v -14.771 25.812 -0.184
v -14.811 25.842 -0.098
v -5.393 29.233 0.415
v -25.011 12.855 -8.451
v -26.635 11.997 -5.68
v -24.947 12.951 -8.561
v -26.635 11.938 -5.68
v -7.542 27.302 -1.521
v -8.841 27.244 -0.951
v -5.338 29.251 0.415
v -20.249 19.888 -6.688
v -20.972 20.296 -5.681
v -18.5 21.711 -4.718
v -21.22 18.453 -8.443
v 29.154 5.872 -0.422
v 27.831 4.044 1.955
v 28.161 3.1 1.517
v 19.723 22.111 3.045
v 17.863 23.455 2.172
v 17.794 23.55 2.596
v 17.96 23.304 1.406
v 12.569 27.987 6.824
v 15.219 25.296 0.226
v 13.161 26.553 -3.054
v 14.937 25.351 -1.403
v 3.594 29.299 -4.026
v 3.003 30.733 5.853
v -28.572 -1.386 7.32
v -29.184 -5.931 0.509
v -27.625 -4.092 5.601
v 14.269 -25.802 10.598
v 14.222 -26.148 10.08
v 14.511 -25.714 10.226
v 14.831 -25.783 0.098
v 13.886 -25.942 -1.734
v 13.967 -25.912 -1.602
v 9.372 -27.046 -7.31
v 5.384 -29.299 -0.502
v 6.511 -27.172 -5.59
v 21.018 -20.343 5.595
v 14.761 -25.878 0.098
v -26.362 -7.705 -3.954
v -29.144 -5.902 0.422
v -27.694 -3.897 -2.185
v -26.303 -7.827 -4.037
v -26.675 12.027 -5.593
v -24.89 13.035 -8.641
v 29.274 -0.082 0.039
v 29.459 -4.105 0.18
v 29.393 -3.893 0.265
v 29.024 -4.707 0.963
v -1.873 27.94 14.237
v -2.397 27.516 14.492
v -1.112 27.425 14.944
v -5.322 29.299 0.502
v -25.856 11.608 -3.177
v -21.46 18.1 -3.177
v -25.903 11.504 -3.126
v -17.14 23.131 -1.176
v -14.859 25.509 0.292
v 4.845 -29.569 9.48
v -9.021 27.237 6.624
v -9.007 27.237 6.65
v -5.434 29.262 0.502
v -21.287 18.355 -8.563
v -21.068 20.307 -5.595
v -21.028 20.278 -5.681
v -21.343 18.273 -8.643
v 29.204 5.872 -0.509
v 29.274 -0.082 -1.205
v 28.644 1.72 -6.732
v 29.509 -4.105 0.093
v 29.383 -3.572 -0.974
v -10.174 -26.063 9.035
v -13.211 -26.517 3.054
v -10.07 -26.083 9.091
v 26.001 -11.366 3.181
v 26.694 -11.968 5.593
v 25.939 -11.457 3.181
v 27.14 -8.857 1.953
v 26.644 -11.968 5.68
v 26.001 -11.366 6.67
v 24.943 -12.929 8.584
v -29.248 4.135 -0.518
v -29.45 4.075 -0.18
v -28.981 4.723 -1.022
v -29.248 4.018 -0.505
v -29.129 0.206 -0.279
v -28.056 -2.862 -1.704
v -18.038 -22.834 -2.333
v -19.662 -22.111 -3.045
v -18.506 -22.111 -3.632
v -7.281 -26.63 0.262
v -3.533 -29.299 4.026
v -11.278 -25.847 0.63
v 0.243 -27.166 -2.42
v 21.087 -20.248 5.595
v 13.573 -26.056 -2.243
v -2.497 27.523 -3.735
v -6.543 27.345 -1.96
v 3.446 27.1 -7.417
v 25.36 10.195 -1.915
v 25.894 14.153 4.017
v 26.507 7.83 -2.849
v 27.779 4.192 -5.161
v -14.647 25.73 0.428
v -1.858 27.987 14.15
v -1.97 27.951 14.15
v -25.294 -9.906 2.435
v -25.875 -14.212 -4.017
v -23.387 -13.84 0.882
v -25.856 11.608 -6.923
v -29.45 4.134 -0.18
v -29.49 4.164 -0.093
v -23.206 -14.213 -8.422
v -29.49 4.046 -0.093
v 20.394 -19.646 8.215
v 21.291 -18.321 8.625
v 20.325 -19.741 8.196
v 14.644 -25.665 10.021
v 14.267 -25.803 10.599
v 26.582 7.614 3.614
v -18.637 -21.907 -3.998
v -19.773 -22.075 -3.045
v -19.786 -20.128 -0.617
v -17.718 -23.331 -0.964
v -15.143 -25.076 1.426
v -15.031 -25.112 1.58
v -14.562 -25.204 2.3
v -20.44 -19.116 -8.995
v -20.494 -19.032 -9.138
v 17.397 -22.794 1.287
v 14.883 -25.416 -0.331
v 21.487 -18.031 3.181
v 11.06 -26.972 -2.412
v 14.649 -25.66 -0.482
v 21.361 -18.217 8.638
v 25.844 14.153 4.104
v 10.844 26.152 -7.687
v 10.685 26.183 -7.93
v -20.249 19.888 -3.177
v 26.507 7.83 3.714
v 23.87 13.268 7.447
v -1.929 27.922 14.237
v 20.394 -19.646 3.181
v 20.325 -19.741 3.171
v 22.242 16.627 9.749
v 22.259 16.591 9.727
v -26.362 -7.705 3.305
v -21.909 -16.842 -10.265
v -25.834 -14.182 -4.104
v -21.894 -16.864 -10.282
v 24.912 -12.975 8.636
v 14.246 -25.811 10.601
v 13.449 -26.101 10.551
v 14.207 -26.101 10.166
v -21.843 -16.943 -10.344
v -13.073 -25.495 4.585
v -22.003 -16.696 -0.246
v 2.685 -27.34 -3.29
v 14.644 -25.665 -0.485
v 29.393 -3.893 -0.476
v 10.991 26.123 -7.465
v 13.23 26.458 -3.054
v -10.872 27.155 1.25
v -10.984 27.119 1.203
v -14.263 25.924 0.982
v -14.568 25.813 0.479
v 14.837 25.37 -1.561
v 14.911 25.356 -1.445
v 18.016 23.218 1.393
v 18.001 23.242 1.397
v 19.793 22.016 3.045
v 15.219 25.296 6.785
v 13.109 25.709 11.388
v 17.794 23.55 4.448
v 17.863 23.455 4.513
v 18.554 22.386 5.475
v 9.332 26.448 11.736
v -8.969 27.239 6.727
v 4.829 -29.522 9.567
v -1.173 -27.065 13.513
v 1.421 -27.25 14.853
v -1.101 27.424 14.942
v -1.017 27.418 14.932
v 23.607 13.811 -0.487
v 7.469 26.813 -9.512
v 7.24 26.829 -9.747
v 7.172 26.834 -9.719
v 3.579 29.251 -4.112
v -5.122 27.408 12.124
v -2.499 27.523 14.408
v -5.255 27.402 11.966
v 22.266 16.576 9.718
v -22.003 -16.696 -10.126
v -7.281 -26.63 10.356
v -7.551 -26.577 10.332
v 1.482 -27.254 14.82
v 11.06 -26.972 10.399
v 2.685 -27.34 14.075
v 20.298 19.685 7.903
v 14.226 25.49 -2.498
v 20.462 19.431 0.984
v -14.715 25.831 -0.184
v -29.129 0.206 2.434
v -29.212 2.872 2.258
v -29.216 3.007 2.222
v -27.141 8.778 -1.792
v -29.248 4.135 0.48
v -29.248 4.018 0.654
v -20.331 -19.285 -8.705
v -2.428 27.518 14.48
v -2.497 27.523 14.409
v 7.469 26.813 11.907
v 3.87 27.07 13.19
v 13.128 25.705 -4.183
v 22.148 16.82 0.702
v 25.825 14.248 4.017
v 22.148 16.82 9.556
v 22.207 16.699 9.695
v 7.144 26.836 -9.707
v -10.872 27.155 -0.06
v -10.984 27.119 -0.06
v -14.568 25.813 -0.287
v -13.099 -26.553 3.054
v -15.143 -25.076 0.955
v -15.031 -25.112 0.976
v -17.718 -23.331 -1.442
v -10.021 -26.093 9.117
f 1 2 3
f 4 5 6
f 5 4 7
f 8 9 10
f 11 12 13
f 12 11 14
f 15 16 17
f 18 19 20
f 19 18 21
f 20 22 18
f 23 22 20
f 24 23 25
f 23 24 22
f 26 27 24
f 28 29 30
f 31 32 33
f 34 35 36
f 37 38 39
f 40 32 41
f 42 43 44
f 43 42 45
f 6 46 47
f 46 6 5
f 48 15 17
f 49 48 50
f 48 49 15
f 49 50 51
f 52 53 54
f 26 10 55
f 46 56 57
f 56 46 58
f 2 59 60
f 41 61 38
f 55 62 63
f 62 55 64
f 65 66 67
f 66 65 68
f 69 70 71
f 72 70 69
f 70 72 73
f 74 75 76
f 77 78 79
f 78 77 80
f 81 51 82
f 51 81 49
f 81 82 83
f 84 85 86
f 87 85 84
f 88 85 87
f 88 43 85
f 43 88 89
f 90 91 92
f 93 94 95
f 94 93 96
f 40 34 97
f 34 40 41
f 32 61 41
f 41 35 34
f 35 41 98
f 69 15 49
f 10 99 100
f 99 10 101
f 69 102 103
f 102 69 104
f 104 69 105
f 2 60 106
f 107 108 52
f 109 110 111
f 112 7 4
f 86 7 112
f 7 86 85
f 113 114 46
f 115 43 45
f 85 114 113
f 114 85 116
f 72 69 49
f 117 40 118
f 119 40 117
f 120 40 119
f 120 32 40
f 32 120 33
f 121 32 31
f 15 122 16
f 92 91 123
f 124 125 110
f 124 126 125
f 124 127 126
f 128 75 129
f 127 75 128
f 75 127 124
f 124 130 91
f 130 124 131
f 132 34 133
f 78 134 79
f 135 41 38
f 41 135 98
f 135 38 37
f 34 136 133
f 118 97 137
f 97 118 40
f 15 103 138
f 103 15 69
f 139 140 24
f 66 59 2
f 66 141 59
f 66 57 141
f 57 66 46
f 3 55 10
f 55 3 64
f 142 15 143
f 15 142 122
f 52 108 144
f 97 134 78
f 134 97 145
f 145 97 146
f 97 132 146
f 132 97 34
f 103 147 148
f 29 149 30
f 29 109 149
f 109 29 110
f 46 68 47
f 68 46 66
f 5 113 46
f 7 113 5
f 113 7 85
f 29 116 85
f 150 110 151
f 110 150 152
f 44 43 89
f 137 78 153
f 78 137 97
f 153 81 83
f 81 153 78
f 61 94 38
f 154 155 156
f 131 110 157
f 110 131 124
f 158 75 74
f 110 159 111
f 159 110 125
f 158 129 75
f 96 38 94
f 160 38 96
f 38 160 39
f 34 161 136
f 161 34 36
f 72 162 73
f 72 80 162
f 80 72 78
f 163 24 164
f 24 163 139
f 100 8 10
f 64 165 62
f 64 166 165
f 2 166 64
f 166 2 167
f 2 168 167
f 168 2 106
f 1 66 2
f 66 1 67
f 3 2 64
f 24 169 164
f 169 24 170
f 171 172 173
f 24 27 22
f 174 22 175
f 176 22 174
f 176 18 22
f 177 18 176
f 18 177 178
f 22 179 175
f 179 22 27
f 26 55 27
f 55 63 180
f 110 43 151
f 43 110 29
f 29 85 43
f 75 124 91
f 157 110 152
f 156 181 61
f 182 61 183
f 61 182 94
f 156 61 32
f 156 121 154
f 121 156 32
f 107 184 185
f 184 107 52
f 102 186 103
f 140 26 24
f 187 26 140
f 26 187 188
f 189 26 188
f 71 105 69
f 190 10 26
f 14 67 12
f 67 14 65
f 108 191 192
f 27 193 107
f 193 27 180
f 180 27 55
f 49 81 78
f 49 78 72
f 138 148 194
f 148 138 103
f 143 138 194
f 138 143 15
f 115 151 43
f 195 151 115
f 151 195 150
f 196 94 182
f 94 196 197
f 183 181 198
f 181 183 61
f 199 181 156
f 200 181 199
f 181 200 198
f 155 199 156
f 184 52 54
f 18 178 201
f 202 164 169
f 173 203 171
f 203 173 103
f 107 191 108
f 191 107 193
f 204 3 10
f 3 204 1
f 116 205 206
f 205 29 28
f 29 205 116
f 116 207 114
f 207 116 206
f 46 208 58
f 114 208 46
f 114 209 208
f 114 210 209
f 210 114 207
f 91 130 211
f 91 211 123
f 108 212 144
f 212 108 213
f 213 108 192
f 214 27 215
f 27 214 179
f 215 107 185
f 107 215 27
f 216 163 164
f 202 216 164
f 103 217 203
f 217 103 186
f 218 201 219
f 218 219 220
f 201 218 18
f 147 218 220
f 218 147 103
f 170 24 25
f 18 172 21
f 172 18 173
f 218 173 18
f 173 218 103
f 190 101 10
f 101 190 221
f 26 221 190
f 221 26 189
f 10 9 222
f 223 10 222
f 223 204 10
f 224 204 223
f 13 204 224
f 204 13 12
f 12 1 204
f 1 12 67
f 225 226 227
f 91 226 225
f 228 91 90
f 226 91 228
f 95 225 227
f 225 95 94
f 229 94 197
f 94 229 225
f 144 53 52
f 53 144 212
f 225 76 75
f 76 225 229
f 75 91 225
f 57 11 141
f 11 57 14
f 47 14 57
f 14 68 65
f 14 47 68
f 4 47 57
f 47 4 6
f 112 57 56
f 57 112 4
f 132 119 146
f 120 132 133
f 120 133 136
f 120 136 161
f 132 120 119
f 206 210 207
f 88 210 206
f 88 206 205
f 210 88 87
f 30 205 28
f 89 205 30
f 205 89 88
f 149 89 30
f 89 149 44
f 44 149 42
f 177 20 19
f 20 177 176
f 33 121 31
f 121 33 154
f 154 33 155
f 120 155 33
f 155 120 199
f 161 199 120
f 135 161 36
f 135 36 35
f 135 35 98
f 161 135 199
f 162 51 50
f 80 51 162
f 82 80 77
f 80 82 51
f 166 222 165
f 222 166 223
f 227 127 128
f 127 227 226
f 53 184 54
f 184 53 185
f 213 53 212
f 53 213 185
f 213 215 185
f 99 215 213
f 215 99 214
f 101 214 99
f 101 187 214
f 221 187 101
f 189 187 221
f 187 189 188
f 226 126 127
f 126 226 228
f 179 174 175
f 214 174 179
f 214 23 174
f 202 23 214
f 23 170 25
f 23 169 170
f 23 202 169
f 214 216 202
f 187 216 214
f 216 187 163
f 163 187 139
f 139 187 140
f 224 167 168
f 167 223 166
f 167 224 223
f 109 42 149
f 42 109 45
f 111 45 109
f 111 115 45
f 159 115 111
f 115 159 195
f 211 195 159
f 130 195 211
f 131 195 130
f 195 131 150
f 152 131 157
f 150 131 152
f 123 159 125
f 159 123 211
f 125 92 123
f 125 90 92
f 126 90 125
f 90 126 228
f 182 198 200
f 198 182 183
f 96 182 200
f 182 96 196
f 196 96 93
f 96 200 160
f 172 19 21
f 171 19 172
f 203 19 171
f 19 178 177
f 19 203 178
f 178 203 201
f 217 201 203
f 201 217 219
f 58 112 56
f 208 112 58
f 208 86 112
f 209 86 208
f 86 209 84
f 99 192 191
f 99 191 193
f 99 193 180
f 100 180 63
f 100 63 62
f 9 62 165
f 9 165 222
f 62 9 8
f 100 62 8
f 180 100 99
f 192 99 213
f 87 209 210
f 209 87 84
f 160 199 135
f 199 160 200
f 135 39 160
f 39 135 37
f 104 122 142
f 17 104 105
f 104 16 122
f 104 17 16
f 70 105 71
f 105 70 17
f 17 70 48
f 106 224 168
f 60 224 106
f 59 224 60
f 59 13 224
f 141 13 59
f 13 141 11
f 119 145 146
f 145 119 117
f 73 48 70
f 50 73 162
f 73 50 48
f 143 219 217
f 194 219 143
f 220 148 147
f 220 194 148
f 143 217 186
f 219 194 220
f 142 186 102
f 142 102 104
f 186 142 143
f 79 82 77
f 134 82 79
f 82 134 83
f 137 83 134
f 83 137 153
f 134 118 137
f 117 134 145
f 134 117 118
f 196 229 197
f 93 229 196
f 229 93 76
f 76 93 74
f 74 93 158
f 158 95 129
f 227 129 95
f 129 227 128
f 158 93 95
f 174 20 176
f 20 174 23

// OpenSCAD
// Auto-generated OpenSCAD file

    inner_points = 10*[[-1.4487143990499982, 2.5753825704945696, 0.3393075595010162], [1.102866452168368, -2.6876538321967396, 0.585057055716785], [-1.090261602560301, 2.7060028247507986, -0.585057055716785], [1.4613192486580653, -2.5570335779405107, -0.3393075595010162], [-2.628060976189026, -0.7646488526687646, -1.130908640848898], [-2.192198931774896, -1.6636828006652273, -1.0889296152643466], [2.2048037813829633, 1.6820317932192868, 1.0889296152643466], [2.640665825797093, 0.782997845222824, 1.130908640848898], [-1.4556831147710878, -0.5821291224034855, 2.5160655338088227], [0.6427361059669467, 0.18253516486993837, -2.8952591776693413], [-0.6301312563588797, -0.16418617231587906, 2.8952591776693413], [1.4682879643791549, 0.6004781149575449, -2.5160655338088227], [-2.0167959533705173, 1.9829203214969908, 0.9105096525937446], [0.26540733999390004, -2.724482544292499, 1.1303146841836589], [-1.078354348798041, 2.3248885867589517, -1.5095083280441774], [1.2038489445663763, -2.3825142790305383, -1.2897032964542632], [-1.1912440949583092, 2.4008632715845972, 1.2897032964542632], [1.090959198406108, -2.3065395942048927, 1.5095083280441774], [-0.25280249038583286, 2.742831536846558, -1.1303146841836589], [2.0294008029785844, -1.9645713289429314, -0.9105096525937446], [-2.904797621580721, 0.026526236908532792, -0.5855107982333385], [-1.7636959748985122, -2.327175195986212, -0.47560828243838127], [-2.5463448250910243, 0.15714649116476193, -1.5098754134511396], [-1.4052431784088153, -2.1965549417299832, -1.3999728976561825], [1.4178480280168824, 2.214903934284042, 1.3999728976561825], [2.5589496746990914, -0.13879749861070262, 1.5098754134511396], [1.7763008245065792, 2.345524188540271, 0.47560828243838127], [2.917402471188788, -0.008177244354473472, 0.5855107982333385], [-2.230731614374909, -0.43037121933057704, 1.902657543873266], [-1.7948695699607788, -1.3294051673270397, 1.9446365694578178], [-0.353848405229956, 0.2535653111933443, -2.937378417402578], [0.08201363918417413, -0.6454686368031184, -2.8953993918180263], [-0.06940878957610698, 0.6638176293571778, 2.8953993918180263], [0.36645325483802316, -0.23521631863928497, 2.937378417402578], [1.807474419568846, 1.3477541598810991, -1.9446365694578178], [2.2433364639829763, 0.44872021188463634, -1.902657543873266], [-2.5775184201532904, 1.1549165198239344, 0.910369438445059], [-0.7311771712030029, -2.653452397969093, 1.088195444450422], [-1.4175408039877317, 1.5776125418353975, -2.0809372923951823], [0.4288004449625556, -2.23075637595763, -1.9031112863898194], [-0.4161955953544884, 2.249105368511689, 1.9031112863898194], [1.4301456535957988, -1.559263549281338, 2.0809372923951823], [0.7437820208110699, 2.671801390523152, -1.088195444450422], [2.5901232697613574, -1.136567527269875, -0.910369438445059], [-2.916704875342981, 0.4076404749003801, 0.33894047409405403], [-1.506225670806824, -2.5016944948961846, 0.4747874545148656], [-1.9782632707705046, 0.7496087401623407, -2.081077506543868], [-0.5677840662343473, -2.159726229634224, -1.9452305261230565], [0.5803889158424144, 2.178075222188283, 1.9452305261230565], [1.9908681203785716, -0.7312597476082813, 2.081077506543868], [1.518830520414891, 2.5200434874502435, -0.4747874545148656], [2.929309724951048, -0.38929148234632077, -0.33894047409405403], [-2.659234571251292, 0.23312117599040766, 1.289336211047301], [-1.5181329245690836, -2.1205802569043377, 1.3992387268422581], [-1.140804158596037, 0.7864374522581001, -2.6263351350107422], [0.0002974880861718451, -1.5672639806366448, -2.516432619215785], [0.012307361521895308, 1.5856129731907043, 2.516432619215785], [1.153409008204104, -0.7680884597040407, 2.6263351350107422], [1.5307377741771506, 2.1389292494583967, -1.3992387268422581], [2.671839420859359, -0.21477218343634835, -1.289336211047301], [-2.2241986003144585, 0.5422344662013506, 2.1350268624122144], [-0.28608434351159595, 1.2484835999237276, -2.8629094259414605], [-0.8884276339278647, 1.218480364801499, 2.748575066496456], [1.0496866228749977, 1.9247294985238759, -2.2493612218572188], [-2.1424824492164563, 1.4640298100348774, 1.7560600898099725], [-0.5628209889032914, 2.039658689501025, -2.317511583325901], [-1.3169305908042483, 1.8819727601224838, 2.135253733670491], [0.26273086950891694, 2.4576016395886318, -1.9383179394653824], [-1.4491501007106375, 0.39047656312844187, 2.7484348523477706], [0.7105001676853069, 1.1774534536003218, -2.820790186208224]];

    outer_points = 10*[[1.306878914065968, 0.6964890807624852, 2.5738294275574076], [-1.3374470976514352, 0.3012289421252946, -2.6340318607074473], [1.3374470976514352, -0.3012289421252946, 2.6340318607074473], [-1.306878914065968, -0.6964890807624852, -2.5738294275574076], [2.8357387496386, 0.03375924615901473, -0.8803825957553844], [2.3840339404359963, -0.03375924615901473, -1.76999150900791], [-2.3840339404359963, 0.03375924615901473, 1.76999150900791], [-2.8357387496386, -0.03375924615901473, 0.8803825957553844], [0.3563471799807295, 2.92037151977505, -0.40258456455588854], [0.5352964436130941, -2.92037151977505, -0.05015338227922686], [-0.5352964436130941, 2.92037151977505, 0.05015338227922686], [-0.3563471799807295, -2.92037151977505, 0.40258456455588854], [1.5883860833705659, 1.4827955553120262, 2.0238513900762873], [-0.7767710033778418, 1.1292641397965266, -2.6342013531036494], [1.6684146269716655, -1.1292641397965266, 2.1814634062685343], [-0.6967424597767421, -1.4827955553120262, -2.4765893369114025], [0.6967424597767421, 1.4827955553120262, 2.4765893369114025], [-1.6684146269716655, 1.1292641397965266, -2.1814634062685343], [0.7767710033778418, -1.1292641397965266, 2.6342013531036494], [-1.5883860833705659, -1.4827955553120262, -2.0238513900762873], [2.9103584923151162, 0.5872418653227648, -0.05087136359121058], [1.7277799489409125, 0.410476157565015, -2.3798977351811788], [2.9409266759005837, -0.410476157565015, 0.00933106955882912], [1.75834813252638, -0.5872418653227648, -2.319695302031139], [-1.75834813252638, 0.5872418653227648, 2.319695302031139], [-2.9409266759005837, 0.410476157565015, -0.00933106955882912], [-1.7277799489409125, -0.410476157565015, 2.3798977351811788], [-2.9103584923151162, -0.5872418653227648, 0.05087136359121058], [1.3130005172105763, 2.6458189412675677, -0.30544922597157165], [0.8612957080079724, 2.578300448949538, -1.195058139224097], [1.4730576044127757, -2.578300448949538, 0.009774806412922166], [1.0213527952101717, -2.6458189412675677, -0.8798341068396033], [-1.0213527952101717, 2.6458189412675677, 0.8798341068396033], [-1.4730576044127757, 2.578300448949538, -0.009774806412922166], [-0.8612957080079724, -2.578300448949538, 1.195058139224097], [-1.3130005172105763, -2.6458189412675677, 0.30544922597157165], [2.074442434967643, 1.7573481338195083, 1.194170665515911], [0.16099015742183997, 1.4713352106220383, -2.5742731644115002], [2.173363154998908, -1.4713352106220383, 1.3889898316003255], [0.2599108774531048, -1.7573481338195083, -2.3794539983270857], [-0.2599108774531048, 1.7573481338195083, 2.3794539983270857], [-2.173363154998908, 1.4713352106220383, -1.3889898316003255], [-0.16099015742183997, -1.4713352106220383, 2.5742731644115002], [-2.074442434967643, -1.7573481338195083, -1.194170665515911], [2.579390962994886, 1.4152770629939968, 0.40169709084770233], [1.1176434946516864, 1.196782632114556, -2.477137825827184], [2.659419506595986, -1.196782632114556, 0.5593091070399493], [1.1976720382527861, -1.4152770629939968, -2.319525809634937], [-1.1976720382527861, 1.4152770629939968, 2.319525809634937], [-2.659419506595986, 1.196782632114556, -0.5593091070399493], [-1.1176434946516864, -1.196782632114556, 2.477137825827184], [-2.579390962994886, -1.4152770629939968, -0.40169709084770233], [1.96925450870566, 2.201583537543538, 0.3044570002016973], [0.7866759653314565, 2.024817829785788, -2.024569371388271], [2.0987434123223925, -2.024817829785788, 0.5594785994361517], [0.9161648689481887, -2.201583537543538, -1.7695477721538164], [-0.9161648689481887, 2.201583537543538, 1.7695477721538164], [-2.0987434123223925, 2.024817829785788, -0.5594785994361517], [-0.7866759653314565, -2.024817829785788, 2.024569371388271], [-1.96925450870566, -2.201583537543538, -0.3044570002016973], [1.2538486107021445, 2.7892218999452805, 0.6824458309038517], [1.4191273670453497, -2.6053280752940653, 1.0079536665936386], [-0.18886107812477992, 2.7892218999452805, 1.4149912168799113], [-0.02358232178157471, -2.6053280752940653, 1.7404990525696982], [1.3590365369641275, 2.3449864962212508, 1.5721594962180654], [1.4937471097218653, -2.0518454561303154, 1.837464898757812], [0.467392913370304, 2.3449864962212508, 2.0248974430531805], [0.6021034861280418, -2.0518454561303154, 2.290202845592927], [0.29719527347229757, 3.0637744784527623, 0.5853104923195349], [0.481366206245668, -2.9473991461195768, 0.9480254779014893]];

    // Convex hull for inner set (I)
    module inner_hull() {
        hull() {
            for (p = inner_points) {
                translate(p) sphere(r=0.1);
            }
        }
    }

    // Convex hull for outer set (O) minus inner hull (O \ I)
    module outer_minus_inner() {
        difference() {
            hull() {
                for (p = outer_points) {
                    translate(p) sphere(r=0.1);
                }
            }
            inner_hull(); // Subtract inner hull
        }
    }

    // Convex hull for outer set (O) minus all translated inner hulls
    module outer_minus_AllTranslationInner() {
        difference() {
            hull() {
                for (p = outer_points) {
                    translate(p) sphere(r=0.1);
                }
            }
            hull() {
                translate([0,0,50]) inner_hull();
                translate([0,0,-50]) inner_hull();
            }; // Subtract translated inner hulls
        }
    }

    // Difference between outer_minus_inner and outer_minus_AllTranslationInner
    module outer_minus_inner_diff() {
        difference() {
            // Outer minus inner
            difference() {
                hull() {
                    for (p = outer_points) {
                        translate(p) sphere(r=0.1);
                    }
                }
                inner_hull();
            }

            // Subtract Outer minus AllTranslationInner
            difference() {
                hull() {
                    for (p = outer_points) {
                        translate(p) sphere(r=0.1);
                    }
                }
                hull() {
                    translate([0,0,50]) inner_hull();
                    translate([0,0,-50]) inner_hull();
                };
            }
        }
    }

    // Rendering all with colors applied
    color([0, 1, 0, 1]) outer_minus_AllTranslationInner(); // Opaque green
    
